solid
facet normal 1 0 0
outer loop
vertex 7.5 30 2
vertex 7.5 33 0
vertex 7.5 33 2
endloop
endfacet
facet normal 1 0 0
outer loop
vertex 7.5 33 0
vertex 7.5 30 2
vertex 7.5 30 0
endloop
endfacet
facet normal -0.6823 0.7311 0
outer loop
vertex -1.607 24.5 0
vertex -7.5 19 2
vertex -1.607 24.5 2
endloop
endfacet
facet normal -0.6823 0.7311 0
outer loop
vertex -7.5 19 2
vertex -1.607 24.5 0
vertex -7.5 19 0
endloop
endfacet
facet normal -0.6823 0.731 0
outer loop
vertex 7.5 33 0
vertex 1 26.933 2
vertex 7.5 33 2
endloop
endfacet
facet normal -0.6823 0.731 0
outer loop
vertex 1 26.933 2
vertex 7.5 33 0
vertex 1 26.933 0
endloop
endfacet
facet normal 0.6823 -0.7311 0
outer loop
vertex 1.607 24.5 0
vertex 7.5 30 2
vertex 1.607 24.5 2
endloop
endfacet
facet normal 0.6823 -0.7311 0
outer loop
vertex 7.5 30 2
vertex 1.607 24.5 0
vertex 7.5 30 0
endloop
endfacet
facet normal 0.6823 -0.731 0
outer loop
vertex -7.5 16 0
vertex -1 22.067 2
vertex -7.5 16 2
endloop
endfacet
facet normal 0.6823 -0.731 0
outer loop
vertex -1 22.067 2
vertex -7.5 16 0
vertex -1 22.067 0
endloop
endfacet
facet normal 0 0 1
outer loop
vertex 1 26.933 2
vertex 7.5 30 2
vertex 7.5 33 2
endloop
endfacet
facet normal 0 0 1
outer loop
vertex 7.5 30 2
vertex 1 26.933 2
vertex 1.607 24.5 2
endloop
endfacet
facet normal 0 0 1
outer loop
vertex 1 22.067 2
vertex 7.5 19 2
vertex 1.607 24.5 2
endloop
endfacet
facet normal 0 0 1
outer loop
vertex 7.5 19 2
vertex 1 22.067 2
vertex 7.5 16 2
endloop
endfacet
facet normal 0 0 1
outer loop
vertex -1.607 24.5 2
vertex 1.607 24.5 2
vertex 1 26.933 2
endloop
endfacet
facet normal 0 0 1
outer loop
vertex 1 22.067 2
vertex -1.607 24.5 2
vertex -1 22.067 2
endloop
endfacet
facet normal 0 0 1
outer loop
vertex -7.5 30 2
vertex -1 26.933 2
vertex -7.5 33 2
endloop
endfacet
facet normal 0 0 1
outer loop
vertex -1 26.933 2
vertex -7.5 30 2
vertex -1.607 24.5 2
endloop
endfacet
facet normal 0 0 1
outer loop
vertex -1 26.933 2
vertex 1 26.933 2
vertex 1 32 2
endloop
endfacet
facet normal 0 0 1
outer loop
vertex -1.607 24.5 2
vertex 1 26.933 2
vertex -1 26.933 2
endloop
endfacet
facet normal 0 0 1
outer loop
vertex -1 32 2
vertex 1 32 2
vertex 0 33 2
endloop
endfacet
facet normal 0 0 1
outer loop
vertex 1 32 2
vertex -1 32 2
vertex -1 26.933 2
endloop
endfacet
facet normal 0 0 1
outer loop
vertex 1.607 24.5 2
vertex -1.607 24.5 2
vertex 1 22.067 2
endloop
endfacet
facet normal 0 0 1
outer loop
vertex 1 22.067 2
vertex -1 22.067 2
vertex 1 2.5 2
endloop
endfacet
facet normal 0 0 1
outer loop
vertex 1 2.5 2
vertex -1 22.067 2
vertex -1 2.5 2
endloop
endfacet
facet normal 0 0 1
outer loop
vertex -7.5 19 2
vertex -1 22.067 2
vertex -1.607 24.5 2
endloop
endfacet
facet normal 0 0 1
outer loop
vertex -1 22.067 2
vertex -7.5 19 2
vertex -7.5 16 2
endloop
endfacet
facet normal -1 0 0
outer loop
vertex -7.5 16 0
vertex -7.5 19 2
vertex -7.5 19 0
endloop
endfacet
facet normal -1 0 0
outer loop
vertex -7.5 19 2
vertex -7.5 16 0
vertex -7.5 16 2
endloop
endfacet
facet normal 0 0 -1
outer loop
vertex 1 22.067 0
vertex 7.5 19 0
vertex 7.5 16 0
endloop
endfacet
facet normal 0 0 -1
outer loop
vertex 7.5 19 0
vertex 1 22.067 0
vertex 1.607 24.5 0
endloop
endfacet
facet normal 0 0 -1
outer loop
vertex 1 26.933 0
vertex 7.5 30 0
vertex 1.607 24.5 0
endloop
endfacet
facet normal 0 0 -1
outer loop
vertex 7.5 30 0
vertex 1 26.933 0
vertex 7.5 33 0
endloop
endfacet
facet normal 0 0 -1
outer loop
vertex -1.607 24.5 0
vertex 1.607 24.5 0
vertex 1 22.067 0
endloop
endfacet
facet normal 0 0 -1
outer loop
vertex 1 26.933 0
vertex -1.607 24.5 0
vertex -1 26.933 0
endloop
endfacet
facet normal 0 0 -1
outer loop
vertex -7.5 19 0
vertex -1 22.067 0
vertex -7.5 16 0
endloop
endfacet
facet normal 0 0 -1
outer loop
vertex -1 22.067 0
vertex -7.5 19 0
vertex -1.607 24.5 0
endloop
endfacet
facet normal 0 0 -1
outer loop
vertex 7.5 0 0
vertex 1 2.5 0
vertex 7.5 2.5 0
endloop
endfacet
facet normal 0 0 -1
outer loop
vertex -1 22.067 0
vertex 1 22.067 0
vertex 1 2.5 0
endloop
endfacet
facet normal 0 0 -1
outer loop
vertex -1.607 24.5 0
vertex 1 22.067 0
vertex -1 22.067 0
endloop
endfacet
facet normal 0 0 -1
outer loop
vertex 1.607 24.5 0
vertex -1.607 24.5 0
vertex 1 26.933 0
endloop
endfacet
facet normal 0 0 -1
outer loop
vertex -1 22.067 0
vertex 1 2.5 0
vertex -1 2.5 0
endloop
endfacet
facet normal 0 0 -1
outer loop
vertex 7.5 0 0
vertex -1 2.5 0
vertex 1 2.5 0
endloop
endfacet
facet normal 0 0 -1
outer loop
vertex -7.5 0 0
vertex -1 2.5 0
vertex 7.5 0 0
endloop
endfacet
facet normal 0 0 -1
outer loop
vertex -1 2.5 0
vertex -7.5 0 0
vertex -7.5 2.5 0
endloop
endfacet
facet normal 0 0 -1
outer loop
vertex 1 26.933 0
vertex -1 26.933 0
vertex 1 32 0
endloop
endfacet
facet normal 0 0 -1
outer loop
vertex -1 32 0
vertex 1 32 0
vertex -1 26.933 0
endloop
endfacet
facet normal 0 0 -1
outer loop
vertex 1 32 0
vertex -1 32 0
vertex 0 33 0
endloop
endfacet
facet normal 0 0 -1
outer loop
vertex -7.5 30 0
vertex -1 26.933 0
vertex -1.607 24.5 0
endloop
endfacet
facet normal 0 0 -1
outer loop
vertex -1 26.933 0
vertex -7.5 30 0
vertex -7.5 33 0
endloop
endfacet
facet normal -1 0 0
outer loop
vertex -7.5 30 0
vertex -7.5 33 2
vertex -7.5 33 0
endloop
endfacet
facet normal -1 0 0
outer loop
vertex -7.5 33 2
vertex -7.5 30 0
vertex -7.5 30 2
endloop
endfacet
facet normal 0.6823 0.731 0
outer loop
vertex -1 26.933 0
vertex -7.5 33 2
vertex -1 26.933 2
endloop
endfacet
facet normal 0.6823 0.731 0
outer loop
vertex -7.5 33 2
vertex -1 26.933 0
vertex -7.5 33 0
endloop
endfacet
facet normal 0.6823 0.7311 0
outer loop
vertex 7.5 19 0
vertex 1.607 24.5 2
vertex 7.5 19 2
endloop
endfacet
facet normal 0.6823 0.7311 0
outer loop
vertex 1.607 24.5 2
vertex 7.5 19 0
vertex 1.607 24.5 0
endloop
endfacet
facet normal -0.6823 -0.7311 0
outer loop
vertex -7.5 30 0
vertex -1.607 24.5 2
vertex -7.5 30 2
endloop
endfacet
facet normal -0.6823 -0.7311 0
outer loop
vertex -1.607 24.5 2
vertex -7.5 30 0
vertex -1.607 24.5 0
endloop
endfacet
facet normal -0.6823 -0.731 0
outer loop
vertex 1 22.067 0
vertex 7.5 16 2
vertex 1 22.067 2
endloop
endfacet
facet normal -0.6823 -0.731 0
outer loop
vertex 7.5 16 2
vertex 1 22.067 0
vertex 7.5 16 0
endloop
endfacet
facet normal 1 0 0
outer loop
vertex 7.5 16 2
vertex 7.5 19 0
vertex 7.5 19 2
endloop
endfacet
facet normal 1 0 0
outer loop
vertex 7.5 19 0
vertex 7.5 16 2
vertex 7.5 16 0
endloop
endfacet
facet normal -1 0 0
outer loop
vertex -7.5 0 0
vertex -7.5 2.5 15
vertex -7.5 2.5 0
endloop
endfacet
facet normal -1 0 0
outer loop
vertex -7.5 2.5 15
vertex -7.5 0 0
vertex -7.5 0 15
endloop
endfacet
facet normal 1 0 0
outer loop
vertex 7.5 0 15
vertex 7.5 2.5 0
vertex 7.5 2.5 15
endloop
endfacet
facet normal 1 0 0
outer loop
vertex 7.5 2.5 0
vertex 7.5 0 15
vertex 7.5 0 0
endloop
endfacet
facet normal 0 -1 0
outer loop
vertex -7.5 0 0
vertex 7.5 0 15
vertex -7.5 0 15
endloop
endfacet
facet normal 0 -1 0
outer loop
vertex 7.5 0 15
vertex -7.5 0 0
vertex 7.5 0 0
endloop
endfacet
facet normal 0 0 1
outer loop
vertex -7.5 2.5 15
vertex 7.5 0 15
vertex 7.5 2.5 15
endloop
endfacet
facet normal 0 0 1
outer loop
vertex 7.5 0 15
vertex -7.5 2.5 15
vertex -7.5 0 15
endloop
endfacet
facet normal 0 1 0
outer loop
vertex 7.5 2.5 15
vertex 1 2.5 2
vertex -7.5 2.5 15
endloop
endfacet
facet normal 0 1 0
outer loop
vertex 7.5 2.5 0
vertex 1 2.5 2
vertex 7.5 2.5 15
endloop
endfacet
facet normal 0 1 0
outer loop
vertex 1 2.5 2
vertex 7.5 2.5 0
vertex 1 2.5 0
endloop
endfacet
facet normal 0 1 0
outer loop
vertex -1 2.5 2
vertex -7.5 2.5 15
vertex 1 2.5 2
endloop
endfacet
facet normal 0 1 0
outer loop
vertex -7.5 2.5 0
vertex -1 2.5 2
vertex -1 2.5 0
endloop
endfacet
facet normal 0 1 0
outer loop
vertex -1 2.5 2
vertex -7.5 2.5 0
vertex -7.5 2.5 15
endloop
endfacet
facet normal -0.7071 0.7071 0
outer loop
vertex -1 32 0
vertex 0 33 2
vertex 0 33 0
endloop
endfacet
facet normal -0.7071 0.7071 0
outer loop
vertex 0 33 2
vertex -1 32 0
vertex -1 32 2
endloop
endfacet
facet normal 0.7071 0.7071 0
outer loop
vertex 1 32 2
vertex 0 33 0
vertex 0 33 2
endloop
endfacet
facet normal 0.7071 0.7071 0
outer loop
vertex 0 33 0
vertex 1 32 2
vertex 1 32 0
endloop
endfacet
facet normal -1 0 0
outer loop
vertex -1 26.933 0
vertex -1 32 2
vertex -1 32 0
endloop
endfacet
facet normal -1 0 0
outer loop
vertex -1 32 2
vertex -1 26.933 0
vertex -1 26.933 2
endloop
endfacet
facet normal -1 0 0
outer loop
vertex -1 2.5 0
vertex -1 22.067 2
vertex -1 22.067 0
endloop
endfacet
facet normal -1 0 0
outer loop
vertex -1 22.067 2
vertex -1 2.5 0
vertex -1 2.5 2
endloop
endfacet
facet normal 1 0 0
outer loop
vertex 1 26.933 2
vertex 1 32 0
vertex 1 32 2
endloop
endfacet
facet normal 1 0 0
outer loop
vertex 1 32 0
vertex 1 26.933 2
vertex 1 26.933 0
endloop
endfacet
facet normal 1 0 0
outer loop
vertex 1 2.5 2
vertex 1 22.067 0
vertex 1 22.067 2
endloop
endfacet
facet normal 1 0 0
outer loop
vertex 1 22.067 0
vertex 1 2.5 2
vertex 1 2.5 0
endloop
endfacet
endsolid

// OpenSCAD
//cube([3,3,3]);
linear_extrude (15) {
    polygon([
        // base
        [15/2, 0],
        [15/2, 2.5],
        [-15/2, 2.5],
        [-15/2, 0],
    ]);
}

linear_extrude (2) {
    polygon([
        //tower
        [-1, 2.5],
        [1, 2.5],
        [1, 32],
        [0, 33],
        [-1, 32],
        ]);
}

for (x=[-1,1]) scale([x,1,1]) {
    linear_extrude (2) {
        polygon([
            //cross-arm
            [-15/2, 33],
            [15/2, 19],
            [15/2, 16],
            [-15/2, 30]
        ]);
    }
}
